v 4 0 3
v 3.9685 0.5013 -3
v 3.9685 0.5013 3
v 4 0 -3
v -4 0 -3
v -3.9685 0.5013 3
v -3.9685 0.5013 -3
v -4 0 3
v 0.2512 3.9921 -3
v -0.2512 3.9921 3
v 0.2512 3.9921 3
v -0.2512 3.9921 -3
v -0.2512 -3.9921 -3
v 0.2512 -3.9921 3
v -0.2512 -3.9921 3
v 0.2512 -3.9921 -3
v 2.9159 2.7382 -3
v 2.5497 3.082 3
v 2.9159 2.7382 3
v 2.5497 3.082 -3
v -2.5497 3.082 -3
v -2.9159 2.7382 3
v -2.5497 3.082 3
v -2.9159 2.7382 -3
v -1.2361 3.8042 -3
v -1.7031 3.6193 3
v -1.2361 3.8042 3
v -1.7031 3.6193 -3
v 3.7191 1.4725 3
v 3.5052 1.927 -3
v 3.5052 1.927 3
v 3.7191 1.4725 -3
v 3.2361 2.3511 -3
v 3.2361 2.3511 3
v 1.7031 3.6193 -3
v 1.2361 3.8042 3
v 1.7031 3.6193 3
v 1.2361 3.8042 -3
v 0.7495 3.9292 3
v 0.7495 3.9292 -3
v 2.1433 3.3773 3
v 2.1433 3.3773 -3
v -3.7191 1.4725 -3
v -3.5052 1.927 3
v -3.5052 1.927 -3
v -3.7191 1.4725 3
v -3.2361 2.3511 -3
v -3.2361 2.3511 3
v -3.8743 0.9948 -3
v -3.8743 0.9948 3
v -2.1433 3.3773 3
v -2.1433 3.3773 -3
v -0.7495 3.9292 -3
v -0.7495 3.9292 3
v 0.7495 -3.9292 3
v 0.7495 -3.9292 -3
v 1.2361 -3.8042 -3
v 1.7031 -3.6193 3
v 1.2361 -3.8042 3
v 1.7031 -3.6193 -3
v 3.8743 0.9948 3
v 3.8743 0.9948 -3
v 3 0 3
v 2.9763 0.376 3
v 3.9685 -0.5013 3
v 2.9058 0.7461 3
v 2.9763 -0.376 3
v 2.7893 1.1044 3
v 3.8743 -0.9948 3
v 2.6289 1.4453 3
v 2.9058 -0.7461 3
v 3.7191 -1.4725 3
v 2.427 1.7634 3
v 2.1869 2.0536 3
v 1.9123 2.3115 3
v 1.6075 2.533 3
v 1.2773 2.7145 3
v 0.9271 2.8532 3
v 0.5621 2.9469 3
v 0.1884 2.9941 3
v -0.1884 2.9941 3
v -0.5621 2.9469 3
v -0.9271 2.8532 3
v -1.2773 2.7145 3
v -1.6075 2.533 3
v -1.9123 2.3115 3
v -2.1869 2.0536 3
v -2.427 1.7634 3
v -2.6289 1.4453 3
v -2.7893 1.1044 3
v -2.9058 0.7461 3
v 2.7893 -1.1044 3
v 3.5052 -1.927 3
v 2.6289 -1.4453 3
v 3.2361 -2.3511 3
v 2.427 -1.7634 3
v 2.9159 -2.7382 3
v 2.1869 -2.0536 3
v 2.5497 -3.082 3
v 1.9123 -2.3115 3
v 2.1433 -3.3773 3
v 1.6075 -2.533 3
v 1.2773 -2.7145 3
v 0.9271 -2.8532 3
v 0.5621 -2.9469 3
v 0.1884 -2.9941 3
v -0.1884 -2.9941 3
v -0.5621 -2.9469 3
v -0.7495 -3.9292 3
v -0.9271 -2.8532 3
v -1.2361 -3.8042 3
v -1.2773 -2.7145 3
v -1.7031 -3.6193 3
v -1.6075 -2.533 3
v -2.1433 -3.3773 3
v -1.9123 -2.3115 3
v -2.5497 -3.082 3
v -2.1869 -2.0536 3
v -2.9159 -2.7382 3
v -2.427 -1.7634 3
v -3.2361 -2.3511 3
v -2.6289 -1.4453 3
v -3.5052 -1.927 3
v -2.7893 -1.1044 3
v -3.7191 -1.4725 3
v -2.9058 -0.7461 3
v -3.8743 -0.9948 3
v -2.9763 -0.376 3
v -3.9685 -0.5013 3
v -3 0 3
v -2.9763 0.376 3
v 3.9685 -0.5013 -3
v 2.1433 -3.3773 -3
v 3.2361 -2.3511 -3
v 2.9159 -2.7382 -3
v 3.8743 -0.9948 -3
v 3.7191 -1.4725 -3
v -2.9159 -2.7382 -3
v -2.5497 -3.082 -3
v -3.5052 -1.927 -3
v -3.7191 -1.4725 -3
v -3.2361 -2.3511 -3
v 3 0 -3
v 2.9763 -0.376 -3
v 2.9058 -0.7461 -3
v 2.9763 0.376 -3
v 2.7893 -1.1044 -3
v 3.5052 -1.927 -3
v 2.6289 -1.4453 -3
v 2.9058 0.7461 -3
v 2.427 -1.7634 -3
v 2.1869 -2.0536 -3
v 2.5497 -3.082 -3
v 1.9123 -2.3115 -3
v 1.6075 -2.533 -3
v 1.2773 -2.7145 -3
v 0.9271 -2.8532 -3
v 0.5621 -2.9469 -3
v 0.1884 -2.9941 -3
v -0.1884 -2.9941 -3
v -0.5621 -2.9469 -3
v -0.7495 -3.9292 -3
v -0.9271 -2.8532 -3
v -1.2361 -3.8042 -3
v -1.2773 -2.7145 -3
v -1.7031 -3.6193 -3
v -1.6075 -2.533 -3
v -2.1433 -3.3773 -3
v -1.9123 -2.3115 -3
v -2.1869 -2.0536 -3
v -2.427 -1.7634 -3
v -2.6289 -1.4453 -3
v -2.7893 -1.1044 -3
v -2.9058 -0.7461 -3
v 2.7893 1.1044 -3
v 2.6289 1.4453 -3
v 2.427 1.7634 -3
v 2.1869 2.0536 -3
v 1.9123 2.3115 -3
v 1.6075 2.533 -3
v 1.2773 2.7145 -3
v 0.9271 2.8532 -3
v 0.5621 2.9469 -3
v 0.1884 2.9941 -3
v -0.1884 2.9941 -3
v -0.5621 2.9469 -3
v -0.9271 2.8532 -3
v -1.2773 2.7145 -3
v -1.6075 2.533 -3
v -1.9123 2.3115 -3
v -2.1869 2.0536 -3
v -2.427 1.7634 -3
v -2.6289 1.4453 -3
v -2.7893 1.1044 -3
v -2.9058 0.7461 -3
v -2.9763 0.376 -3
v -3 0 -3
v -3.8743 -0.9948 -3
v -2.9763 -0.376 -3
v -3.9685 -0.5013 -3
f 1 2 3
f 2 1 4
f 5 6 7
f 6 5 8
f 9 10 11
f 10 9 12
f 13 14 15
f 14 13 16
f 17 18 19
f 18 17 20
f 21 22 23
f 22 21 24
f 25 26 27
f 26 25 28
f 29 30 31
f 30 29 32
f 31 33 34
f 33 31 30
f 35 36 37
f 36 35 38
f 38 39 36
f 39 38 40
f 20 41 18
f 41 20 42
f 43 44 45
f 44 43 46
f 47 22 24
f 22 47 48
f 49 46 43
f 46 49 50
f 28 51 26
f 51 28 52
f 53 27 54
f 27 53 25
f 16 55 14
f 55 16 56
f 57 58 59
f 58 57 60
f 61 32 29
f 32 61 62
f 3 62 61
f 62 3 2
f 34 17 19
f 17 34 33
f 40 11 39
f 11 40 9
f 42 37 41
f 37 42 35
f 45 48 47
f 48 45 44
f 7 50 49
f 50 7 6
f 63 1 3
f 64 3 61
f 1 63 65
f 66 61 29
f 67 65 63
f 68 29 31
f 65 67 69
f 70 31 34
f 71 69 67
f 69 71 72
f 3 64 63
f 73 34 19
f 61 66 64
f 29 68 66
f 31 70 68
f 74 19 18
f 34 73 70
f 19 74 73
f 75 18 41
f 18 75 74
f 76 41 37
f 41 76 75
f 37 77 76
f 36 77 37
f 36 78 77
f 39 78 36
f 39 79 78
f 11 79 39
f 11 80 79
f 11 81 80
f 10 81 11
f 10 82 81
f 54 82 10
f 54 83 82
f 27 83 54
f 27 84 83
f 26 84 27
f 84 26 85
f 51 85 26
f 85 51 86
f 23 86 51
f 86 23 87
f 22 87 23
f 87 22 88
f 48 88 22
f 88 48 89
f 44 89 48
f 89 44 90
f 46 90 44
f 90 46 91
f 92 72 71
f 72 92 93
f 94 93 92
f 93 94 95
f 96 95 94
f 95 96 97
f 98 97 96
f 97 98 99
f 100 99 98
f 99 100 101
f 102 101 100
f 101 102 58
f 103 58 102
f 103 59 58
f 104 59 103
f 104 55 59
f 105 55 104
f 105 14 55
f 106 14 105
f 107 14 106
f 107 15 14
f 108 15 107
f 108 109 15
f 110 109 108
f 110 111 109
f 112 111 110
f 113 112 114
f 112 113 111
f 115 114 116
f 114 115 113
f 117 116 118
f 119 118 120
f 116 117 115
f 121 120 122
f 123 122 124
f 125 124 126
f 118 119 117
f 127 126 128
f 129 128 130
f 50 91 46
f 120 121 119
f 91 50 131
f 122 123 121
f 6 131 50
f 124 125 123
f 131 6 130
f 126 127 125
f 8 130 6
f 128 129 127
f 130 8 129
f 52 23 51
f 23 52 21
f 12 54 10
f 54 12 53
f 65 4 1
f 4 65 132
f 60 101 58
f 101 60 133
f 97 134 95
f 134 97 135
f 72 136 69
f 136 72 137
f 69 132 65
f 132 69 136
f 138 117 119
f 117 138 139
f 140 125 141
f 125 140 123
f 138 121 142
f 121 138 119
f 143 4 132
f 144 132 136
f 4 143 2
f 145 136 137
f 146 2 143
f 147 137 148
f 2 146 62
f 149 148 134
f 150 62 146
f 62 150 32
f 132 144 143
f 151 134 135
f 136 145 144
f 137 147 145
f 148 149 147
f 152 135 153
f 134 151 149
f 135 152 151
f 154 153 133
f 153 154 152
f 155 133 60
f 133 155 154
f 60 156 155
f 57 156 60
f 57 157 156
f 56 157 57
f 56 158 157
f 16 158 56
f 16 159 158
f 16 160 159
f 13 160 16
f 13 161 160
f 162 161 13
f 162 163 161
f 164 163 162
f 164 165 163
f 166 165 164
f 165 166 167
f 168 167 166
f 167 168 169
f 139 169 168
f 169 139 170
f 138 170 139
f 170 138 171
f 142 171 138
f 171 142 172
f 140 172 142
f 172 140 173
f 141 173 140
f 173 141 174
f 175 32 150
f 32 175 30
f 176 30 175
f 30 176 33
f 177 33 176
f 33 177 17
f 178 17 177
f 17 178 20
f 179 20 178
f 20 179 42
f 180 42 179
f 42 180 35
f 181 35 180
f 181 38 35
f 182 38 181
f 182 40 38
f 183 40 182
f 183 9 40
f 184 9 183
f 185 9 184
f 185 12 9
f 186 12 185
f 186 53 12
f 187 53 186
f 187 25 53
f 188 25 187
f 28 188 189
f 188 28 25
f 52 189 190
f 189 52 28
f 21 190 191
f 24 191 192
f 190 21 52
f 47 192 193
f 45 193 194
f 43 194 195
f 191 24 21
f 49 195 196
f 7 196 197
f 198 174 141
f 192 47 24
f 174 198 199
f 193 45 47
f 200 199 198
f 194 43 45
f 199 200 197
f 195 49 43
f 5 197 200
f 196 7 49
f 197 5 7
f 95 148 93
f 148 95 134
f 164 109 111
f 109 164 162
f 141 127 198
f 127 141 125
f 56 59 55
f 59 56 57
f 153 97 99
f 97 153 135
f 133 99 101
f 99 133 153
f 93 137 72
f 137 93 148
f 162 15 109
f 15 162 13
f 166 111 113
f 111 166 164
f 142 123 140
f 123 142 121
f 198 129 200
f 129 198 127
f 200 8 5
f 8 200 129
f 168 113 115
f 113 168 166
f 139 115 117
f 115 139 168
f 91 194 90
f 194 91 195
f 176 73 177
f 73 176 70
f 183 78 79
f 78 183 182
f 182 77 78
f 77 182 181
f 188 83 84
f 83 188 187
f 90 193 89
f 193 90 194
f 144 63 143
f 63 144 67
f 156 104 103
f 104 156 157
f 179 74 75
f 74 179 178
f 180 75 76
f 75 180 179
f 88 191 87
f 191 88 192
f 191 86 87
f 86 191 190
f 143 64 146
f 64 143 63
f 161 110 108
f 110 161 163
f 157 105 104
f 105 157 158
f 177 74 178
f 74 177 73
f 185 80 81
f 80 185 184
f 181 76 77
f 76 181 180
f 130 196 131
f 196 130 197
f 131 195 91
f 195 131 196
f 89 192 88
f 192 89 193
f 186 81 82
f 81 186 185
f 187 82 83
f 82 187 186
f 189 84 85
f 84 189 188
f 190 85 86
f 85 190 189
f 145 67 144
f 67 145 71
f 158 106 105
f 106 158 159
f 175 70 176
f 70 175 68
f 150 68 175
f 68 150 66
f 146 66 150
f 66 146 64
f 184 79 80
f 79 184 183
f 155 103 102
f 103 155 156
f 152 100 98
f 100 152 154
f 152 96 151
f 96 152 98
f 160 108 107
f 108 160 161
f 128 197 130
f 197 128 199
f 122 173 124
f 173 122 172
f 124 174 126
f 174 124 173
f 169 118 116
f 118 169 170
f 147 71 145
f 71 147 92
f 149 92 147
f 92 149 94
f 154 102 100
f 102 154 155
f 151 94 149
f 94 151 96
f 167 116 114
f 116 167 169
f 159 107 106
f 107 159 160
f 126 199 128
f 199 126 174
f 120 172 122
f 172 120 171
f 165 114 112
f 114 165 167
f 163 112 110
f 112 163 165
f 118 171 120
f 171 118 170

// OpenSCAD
$fn = 50;


difference() {
	union() {
		translate(v = [0, 0, -3.0000000000]) {
			cylinder(h = 6, r = 4.0000000000);
		}
	}
	union() {
		translate(v = [0, 0, -100.0000000000]) {
			cylinder(h = 200, r = 3);
		}
	}
}
